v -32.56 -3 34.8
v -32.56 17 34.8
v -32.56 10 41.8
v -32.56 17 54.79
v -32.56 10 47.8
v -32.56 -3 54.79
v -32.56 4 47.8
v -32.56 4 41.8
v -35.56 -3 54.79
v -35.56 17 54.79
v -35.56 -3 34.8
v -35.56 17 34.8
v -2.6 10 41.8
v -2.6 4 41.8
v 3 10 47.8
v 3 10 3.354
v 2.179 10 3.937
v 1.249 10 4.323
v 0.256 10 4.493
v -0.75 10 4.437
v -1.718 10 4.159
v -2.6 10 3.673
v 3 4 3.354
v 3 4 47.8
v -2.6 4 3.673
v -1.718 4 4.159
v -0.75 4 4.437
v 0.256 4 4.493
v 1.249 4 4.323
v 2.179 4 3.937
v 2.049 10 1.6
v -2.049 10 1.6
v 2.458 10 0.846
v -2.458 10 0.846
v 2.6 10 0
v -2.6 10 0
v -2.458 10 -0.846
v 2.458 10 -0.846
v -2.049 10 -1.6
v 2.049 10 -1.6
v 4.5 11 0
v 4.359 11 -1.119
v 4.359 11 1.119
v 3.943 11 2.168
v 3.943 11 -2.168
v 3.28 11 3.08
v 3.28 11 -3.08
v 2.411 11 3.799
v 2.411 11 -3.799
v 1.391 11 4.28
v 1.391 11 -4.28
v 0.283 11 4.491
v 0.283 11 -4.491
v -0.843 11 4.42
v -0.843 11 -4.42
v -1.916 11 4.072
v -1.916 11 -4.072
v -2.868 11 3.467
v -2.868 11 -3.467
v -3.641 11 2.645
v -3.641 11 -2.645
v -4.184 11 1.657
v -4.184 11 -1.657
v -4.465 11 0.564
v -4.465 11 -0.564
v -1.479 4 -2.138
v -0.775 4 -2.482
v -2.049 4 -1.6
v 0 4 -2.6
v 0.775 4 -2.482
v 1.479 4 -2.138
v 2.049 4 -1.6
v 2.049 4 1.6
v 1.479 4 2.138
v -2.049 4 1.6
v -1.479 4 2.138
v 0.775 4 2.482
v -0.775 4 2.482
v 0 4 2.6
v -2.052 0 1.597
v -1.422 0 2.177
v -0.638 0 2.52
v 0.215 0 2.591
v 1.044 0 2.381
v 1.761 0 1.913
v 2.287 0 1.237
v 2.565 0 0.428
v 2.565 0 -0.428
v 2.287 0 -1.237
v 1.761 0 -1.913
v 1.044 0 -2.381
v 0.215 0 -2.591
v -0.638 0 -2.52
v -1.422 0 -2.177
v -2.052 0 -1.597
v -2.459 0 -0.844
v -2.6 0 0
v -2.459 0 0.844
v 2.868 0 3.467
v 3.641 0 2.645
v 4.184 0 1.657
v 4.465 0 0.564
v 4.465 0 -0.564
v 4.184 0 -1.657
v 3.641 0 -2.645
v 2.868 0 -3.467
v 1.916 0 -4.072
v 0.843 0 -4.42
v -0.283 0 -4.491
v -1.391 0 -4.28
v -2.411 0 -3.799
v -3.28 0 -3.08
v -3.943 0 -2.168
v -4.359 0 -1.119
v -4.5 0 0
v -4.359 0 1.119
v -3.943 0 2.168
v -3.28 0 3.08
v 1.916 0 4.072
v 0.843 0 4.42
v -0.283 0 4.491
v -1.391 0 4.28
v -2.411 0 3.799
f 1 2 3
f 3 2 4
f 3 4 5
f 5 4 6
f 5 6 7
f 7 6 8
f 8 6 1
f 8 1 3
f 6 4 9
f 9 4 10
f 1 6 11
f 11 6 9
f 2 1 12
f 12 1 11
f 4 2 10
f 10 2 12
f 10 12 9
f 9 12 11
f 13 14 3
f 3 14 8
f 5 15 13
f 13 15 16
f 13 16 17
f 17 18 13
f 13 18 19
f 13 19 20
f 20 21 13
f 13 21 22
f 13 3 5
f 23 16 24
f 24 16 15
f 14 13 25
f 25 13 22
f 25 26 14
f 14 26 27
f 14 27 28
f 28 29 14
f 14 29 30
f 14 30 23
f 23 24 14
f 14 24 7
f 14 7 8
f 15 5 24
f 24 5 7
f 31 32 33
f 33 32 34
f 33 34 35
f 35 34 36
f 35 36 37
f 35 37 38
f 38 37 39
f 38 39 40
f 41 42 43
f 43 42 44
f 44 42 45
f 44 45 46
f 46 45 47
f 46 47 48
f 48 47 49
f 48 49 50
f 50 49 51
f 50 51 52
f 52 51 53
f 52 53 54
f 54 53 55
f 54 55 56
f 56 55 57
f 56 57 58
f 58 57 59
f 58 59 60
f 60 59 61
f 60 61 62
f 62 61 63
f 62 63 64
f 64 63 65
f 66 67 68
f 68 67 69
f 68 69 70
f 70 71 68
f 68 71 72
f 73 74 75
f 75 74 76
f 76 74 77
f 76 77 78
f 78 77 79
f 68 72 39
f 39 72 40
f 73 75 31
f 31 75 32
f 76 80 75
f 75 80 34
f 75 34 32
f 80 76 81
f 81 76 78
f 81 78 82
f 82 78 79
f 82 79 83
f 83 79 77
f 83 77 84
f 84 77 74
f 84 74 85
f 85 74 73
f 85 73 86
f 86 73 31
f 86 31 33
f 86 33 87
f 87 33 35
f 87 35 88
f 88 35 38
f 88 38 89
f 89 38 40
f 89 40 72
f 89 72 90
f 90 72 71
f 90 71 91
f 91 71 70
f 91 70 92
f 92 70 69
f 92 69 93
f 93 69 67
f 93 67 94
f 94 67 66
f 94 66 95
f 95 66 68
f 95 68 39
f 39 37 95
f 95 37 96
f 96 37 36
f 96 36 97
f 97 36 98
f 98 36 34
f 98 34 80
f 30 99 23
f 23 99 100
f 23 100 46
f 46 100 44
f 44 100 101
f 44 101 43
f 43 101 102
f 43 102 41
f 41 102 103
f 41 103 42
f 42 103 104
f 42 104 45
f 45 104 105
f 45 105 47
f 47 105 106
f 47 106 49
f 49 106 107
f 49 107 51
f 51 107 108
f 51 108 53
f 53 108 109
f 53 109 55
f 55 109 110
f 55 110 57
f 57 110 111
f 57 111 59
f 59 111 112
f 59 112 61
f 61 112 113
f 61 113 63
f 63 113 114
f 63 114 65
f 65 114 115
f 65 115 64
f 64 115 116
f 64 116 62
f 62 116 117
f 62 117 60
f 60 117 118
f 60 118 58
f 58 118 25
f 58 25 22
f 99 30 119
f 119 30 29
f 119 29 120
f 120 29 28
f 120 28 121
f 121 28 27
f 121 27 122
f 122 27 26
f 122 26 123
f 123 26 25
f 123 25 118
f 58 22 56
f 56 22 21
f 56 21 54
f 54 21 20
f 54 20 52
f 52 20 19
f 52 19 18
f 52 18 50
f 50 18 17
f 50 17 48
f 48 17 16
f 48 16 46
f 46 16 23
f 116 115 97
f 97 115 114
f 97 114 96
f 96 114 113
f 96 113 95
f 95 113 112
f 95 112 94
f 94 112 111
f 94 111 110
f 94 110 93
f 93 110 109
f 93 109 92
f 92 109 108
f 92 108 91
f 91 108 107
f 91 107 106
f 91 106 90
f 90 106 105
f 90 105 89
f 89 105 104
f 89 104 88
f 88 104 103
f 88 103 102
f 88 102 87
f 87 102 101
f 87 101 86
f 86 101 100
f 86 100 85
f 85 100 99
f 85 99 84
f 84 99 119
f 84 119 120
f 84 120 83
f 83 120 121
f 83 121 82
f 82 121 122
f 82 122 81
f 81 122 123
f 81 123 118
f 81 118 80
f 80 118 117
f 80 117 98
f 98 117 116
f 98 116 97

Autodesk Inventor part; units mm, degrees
ref_plane "YZ Plane" through (0, 0, 0) normal (1, 0, 0) x (0, 1, 0)
ref_plane "XZ Plane" through (0, 0, 0) normal (0, 1, 0) x (-1, 0, 0)
ref_plane "XY Plane" through (0, 0, 0) normal (0, 0, 1) x (1, 0, 0)
sketch "Sketch3" plane through (0, 0, 0) normal (0, 1, 0) x (-1, 0, 0)
  circle A0 centre (0, 0) radius 4.5
  circle A1 centre (0, 0) radius 2.6
  dimension "d10" = 9
  dimension "d11" = 5.2
extrude "Extrusion2" add sketch "Sketch3" along normal blind 4
sketch "Sketch4" plane through (0, 4, 0) normal (0, 1, 0) x (1, 0, 0)
  circle A0 centre (0, 0) radius 2.6 projected
  line L0 (0, -2.6) -> (0, -1.6)
  line L1 (0, -1.6) -> (0, 2.6)
  line L2 (0, -1.6) -> (-2.0494, -1.6)
  line L3 (0, -1.6) -> (2.0494, -1.6)
  line L4 (0, 2.6) -> (0, 2.6)
  line L5 (0, 2.6) -> (0, 2.6)
  circle A1 centre (0, 0) radius 4.5 projected
  circle A2 centre (0, 0) radius 2.6 projected
  line L6 (0, 2.6) -> (0, 1.6)
  line L7 (0, 1.6) -> (2.0494, 1.6)
  line L8 (0, 1.6) -> (-2.0494, 1.6)
  point P0 (2.0494, 1.6)
  point P1 (-2.0494, 1.6)
  dimension "d14" = 1
  dimension "d20" = 1
extrude "Extrusion3" add sketch "Sketch4" along normal blind 6 contours L7 L1 A0 | A0 L0 L3 | L1 L8 A0 | A0 L2 L0 | A1
sketch "Sketch5" plane through (0, 10, 0) normal (0, 1, 0) x (1, 0, 0)
  circle A0 centre (0, 0) radius 4.5 projected
extrude "Extrusion4" add sketch "Sketch5" along normal blind 1
sketch "Sketch6" plane through (2.0494, 4, 1.6) normal (0, 0, -1) x (-1, 0, 0)
  line L0 (4.0988, 6) -> (0, 6) projected
  line L1 (2.0494, 6) -> (2.0494, 3)
  line L2 (2.0494, 6) -> (5.0494, 6) construction
  line L3 (2.0494, 6) -> (-0.9506, 6)
  line L4 (2.0494, 6) -> (5.0494, 6) construction
  line L5 (-0.9506, 6) -> (-0.9506, 0)
  line L6 (-0.9506, 0) -> (5.0494, 0)
  line L7 (5.0494, 0) -> (5.0494, 6)
  line L8 (5.0494, 6) -> (-0.9506, 6)
  line L9 (4.6494, 6) -> (4.6494, -4) projected
  point P0 (2.0494, -4)
  point P1 (4.6494, 0)
  point P2 (0, 6)
  dimension "d21" = 3
  dimension "d22" = 90
  dimension "d32" = 3
  dimension "d33" = 180
  dimension "d34" = 6
  dimension "d35" = 90
  dimension "d36" = 6
  dimension "d37" = 90
extrude "Extrusion7" add sketch "Sketch6" against normal blind 46.2 contours L8 L9 L6 L5 L3 L0
sketch "Sketch8" plane through (3, 4, 3.3541) normal (1, 0, 0) x (0, 0, -1)
  line L0 (-0.3188, 6) -> (-44.4459, 6) projected
  line L1 (-44.4459, 6) -> (-38.4459, 6)
  line L2 (-38.4459, 6) -> (-38.4459, 0)
  line L3 (-0.3188, 0) -> (-44.4459, 0) projected
  line L4 (0, 6) -> (0, 0) projected
  line L5 (0, 6) -> (-44.4459, 6) projected
  line L6 (-44.4459, 0) -> (-44.4459, 6) projected
  line L7 (0, 0) -> (-44.4459, 0) projected
  point P0 (3.3541, -4)
  dimension "d40" = 6
extrude "Extrusion8" add sketch "Sketch8" against normal blind 35.56 contours L2 L3 L6 L0
sketch "Sketch10" plane through (-32.56, 4, 3.3541) normal (-1, 0, 0) x (0, 0, 1)
  line L0 (0.3188, 6) -> (38.4459, 6) projected
  line L1 (38.4459, 6) -> (38.4459, 13)
  line L2 (38.4459, 13) -> (31.4459, 13)
  line L3 (31.4459, 13) -> (31.4459, -7)
  line L4 (31.4459, -7) -> (51.4357, -7)
  line L5 (51.4357, -7) -> (51.4357, 13)
  line L6 (51.4357, 13) -> (38.4459, 13)
  point P0 (-3.3541, -4)
  dimension "d49" = 7
  dimension "d50" = 7
  dimension "d51" = 90
  dimension "d52" = 20
  dimension "d53" = 90
  dimension "d54" = 19.9898
  dimension "d55" = 90
  dimension "d56" = 90
extrude "Extrusion10" add sketch "Sketch10" along normal blind 3
properties part number "socket2"
